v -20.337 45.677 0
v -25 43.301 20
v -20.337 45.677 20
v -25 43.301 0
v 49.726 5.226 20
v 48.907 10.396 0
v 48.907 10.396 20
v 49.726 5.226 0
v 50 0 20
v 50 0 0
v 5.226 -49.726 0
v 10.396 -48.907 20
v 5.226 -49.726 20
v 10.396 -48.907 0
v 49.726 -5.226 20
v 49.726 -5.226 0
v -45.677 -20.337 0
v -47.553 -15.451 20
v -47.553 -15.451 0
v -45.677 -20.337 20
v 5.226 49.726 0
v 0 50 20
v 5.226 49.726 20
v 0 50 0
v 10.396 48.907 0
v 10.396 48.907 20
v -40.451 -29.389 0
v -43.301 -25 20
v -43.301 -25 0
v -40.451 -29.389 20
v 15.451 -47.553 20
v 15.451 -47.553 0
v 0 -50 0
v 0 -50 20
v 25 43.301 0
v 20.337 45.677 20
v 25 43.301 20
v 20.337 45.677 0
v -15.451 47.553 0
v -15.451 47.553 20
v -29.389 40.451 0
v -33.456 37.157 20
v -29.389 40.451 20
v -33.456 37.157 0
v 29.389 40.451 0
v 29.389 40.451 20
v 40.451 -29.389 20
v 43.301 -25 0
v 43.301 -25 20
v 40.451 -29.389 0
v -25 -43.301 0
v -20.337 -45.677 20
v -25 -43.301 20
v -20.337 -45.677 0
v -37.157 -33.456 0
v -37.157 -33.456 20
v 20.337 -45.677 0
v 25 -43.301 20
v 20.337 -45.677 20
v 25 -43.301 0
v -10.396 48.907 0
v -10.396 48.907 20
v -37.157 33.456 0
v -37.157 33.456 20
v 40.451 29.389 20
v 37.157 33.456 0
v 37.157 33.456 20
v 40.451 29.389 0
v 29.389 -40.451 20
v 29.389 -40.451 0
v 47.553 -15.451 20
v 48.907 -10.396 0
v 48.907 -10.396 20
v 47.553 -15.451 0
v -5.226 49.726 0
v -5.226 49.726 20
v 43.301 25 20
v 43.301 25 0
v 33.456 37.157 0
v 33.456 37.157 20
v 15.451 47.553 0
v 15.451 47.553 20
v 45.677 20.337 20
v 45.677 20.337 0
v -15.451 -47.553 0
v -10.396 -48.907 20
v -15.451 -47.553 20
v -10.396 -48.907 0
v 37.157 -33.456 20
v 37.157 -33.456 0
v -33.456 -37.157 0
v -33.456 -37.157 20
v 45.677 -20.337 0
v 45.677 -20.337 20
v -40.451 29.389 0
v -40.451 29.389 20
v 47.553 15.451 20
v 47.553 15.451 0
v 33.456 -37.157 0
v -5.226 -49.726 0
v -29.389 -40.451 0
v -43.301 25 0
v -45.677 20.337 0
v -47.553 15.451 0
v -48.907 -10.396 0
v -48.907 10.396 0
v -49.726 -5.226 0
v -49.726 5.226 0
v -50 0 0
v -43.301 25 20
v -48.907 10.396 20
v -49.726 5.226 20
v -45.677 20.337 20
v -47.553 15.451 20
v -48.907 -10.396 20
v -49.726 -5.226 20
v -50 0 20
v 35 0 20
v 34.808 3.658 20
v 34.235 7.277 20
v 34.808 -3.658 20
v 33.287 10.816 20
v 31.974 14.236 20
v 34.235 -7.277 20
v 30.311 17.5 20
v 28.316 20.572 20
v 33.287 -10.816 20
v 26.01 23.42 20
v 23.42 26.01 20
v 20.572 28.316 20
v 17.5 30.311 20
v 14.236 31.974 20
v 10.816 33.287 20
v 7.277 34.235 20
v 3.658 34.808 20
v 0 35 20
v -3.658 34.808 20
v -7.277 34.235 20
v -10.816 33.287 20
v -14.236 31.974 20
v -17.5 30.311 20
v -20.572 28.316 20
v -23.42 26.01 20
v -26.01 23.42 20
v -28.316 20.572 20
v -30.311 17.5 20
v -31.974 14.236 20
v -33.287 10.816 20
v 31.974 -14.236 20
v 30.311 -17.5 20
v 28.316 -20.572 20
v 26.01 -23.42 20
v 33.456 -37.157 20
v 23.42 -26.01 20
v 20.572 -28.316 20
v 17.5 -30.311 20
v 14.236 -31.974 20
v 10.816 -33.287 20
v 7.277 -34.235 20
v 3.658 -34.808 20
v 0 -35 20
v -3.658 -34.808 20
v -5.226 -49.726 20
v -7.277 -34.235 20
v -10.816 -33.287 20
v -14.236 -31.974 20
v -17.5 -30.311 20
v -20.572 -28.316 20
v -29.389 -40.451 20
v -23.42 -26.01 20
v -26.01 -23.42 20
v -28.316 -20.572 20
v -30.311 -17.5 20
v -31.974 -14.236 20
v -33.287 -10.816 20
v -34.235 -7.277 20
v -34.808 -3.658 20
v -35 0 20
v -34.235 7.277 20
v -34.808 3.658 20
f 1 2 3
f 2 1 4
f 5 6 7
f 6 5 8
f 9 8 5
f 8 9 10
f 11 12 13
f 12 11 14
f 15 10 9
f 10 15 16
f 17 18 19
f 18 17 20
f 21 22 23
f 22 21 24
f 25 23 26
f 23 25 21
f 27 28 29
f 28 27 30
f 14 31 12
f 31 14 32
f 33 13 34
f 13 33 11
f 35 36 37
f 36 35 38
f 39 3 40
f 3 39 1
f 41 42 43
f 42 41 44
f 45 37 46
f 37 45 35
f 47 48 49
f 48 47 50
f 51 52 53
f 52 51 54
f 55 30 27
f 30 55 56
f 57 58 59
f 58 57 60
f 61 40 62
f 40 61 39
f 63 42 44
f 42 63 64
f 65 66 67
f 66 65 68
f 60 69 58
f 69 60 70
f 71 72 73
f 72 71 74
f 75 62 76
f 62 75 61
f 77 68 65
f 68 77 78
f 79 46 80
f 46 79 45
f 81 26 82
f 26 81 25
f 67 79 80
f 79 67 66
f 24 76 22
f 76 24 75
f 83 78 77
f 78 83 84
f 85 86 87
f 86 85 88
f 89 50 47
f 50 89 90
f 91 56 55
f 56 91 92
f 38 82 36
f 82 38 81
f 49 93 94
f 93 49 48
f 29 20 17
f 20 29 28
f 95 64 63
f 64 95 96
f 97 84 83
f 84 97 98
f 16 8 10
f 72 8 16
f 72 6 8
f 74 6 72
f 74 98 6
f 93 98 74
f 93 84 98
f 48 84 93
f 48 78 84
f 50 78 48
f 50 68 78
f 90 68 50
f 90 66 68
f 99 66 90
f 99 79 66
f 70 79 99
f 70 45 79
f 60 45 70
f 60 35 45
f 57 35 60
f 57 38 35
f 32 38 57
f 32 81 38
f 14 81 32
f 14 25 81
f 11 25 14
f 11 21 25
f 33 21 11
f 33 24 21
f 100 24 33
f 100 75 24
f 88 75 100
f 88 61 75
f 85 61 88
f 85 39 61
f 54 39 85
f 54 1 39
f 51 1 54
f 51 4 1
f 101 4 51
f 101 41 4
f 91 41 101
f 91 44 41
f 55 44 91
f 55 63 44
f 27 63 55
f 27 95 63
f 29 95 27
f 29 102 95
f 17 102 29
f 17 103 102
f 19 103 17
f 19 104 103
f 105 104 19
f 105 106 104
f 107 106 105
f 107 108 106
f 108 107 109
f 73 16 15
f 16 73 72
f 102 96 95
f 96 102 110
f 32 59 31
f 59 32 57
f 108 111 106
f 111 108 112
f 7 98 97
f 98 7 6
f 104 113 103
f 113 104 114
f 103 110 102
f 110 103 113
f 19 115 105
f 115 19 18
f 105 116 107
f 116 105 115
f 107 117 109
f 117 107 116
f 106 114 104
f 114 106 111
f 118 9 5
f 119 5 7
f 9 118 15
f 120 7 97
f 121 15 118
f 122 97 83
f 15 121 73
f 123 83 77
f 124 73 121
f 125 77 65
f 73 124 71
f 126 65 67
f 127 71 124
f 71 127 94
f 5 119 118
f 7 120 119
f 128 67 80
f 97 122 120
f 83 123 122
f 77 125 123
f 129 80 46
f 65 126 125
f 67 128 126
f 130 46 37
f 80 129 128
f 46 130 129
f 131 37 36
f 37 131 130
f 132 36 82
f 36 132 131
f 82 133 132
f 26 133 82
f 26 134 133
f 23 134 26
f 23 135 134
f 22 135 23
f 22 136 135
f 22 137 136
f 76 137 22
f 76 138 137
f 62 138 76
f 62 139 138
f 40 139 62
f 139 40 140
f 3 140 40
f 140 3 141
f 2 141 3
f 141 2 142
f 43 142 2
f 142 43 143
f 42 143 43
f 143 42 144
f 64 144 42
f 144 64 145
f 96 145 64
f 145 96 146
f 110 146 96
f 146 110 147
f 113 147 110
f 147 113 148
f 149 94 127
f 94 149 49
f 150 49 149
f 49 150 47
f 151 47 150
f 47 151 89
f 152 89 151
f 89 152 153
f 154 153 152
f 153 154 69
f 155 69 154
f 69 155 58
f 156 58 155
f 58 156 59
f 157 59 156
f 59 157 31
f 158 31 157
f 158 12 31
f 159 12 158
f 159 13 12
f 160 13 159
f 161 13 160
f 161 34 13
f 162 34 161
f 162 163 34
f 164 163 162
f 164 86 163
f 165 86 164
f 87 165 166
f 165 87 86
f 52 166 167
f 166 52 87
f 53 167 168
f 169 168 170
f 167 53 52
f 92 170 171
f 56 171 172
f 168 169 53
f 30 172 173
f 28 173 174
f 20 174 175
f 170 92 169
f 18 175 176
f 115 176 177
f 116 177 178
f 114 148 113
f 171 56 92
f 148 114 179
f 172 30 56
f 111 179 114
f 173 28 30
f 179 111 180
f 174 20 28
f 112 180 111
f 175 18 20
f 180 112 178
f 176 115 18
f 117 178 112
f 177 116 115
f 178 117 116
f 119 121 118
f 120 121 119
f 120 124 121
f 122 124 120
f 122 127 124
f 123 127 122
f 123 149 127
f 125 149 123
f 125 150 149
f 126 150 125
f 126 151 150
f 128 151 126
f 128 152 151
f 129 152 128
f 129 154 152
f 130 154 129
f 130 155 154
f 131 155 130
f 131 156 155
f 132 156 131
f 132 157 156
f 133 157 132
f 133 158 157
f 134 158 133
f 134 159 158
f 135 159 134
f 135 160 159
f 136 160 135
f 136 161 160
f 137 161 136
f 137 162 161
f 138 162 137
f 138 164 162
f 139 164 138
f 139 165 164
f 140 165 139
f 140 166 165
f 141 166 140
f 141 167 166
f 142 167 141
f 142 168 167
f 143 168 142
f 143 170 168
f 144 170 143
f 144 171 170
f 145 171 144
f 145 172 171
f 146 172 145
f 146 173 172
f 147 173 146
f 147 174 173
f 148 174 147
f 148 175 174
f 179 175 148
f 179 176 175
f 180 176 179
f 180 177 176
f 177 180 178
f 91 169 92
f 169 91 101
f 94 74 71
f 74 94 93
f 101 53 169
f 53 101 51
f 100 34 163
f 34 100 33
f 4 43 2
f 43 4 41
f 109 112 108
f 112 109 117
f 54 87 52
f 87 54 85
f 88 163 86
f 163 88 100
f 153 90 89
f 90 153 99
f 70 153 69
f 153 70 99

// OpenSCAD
$fn = 60;

radius = 50;
height = 20;

difference() {
  cylinder(h = height, r = radius);
  translate([0, 0, height])
  cylinder(h = 1, r = radius * 0.7);
}
